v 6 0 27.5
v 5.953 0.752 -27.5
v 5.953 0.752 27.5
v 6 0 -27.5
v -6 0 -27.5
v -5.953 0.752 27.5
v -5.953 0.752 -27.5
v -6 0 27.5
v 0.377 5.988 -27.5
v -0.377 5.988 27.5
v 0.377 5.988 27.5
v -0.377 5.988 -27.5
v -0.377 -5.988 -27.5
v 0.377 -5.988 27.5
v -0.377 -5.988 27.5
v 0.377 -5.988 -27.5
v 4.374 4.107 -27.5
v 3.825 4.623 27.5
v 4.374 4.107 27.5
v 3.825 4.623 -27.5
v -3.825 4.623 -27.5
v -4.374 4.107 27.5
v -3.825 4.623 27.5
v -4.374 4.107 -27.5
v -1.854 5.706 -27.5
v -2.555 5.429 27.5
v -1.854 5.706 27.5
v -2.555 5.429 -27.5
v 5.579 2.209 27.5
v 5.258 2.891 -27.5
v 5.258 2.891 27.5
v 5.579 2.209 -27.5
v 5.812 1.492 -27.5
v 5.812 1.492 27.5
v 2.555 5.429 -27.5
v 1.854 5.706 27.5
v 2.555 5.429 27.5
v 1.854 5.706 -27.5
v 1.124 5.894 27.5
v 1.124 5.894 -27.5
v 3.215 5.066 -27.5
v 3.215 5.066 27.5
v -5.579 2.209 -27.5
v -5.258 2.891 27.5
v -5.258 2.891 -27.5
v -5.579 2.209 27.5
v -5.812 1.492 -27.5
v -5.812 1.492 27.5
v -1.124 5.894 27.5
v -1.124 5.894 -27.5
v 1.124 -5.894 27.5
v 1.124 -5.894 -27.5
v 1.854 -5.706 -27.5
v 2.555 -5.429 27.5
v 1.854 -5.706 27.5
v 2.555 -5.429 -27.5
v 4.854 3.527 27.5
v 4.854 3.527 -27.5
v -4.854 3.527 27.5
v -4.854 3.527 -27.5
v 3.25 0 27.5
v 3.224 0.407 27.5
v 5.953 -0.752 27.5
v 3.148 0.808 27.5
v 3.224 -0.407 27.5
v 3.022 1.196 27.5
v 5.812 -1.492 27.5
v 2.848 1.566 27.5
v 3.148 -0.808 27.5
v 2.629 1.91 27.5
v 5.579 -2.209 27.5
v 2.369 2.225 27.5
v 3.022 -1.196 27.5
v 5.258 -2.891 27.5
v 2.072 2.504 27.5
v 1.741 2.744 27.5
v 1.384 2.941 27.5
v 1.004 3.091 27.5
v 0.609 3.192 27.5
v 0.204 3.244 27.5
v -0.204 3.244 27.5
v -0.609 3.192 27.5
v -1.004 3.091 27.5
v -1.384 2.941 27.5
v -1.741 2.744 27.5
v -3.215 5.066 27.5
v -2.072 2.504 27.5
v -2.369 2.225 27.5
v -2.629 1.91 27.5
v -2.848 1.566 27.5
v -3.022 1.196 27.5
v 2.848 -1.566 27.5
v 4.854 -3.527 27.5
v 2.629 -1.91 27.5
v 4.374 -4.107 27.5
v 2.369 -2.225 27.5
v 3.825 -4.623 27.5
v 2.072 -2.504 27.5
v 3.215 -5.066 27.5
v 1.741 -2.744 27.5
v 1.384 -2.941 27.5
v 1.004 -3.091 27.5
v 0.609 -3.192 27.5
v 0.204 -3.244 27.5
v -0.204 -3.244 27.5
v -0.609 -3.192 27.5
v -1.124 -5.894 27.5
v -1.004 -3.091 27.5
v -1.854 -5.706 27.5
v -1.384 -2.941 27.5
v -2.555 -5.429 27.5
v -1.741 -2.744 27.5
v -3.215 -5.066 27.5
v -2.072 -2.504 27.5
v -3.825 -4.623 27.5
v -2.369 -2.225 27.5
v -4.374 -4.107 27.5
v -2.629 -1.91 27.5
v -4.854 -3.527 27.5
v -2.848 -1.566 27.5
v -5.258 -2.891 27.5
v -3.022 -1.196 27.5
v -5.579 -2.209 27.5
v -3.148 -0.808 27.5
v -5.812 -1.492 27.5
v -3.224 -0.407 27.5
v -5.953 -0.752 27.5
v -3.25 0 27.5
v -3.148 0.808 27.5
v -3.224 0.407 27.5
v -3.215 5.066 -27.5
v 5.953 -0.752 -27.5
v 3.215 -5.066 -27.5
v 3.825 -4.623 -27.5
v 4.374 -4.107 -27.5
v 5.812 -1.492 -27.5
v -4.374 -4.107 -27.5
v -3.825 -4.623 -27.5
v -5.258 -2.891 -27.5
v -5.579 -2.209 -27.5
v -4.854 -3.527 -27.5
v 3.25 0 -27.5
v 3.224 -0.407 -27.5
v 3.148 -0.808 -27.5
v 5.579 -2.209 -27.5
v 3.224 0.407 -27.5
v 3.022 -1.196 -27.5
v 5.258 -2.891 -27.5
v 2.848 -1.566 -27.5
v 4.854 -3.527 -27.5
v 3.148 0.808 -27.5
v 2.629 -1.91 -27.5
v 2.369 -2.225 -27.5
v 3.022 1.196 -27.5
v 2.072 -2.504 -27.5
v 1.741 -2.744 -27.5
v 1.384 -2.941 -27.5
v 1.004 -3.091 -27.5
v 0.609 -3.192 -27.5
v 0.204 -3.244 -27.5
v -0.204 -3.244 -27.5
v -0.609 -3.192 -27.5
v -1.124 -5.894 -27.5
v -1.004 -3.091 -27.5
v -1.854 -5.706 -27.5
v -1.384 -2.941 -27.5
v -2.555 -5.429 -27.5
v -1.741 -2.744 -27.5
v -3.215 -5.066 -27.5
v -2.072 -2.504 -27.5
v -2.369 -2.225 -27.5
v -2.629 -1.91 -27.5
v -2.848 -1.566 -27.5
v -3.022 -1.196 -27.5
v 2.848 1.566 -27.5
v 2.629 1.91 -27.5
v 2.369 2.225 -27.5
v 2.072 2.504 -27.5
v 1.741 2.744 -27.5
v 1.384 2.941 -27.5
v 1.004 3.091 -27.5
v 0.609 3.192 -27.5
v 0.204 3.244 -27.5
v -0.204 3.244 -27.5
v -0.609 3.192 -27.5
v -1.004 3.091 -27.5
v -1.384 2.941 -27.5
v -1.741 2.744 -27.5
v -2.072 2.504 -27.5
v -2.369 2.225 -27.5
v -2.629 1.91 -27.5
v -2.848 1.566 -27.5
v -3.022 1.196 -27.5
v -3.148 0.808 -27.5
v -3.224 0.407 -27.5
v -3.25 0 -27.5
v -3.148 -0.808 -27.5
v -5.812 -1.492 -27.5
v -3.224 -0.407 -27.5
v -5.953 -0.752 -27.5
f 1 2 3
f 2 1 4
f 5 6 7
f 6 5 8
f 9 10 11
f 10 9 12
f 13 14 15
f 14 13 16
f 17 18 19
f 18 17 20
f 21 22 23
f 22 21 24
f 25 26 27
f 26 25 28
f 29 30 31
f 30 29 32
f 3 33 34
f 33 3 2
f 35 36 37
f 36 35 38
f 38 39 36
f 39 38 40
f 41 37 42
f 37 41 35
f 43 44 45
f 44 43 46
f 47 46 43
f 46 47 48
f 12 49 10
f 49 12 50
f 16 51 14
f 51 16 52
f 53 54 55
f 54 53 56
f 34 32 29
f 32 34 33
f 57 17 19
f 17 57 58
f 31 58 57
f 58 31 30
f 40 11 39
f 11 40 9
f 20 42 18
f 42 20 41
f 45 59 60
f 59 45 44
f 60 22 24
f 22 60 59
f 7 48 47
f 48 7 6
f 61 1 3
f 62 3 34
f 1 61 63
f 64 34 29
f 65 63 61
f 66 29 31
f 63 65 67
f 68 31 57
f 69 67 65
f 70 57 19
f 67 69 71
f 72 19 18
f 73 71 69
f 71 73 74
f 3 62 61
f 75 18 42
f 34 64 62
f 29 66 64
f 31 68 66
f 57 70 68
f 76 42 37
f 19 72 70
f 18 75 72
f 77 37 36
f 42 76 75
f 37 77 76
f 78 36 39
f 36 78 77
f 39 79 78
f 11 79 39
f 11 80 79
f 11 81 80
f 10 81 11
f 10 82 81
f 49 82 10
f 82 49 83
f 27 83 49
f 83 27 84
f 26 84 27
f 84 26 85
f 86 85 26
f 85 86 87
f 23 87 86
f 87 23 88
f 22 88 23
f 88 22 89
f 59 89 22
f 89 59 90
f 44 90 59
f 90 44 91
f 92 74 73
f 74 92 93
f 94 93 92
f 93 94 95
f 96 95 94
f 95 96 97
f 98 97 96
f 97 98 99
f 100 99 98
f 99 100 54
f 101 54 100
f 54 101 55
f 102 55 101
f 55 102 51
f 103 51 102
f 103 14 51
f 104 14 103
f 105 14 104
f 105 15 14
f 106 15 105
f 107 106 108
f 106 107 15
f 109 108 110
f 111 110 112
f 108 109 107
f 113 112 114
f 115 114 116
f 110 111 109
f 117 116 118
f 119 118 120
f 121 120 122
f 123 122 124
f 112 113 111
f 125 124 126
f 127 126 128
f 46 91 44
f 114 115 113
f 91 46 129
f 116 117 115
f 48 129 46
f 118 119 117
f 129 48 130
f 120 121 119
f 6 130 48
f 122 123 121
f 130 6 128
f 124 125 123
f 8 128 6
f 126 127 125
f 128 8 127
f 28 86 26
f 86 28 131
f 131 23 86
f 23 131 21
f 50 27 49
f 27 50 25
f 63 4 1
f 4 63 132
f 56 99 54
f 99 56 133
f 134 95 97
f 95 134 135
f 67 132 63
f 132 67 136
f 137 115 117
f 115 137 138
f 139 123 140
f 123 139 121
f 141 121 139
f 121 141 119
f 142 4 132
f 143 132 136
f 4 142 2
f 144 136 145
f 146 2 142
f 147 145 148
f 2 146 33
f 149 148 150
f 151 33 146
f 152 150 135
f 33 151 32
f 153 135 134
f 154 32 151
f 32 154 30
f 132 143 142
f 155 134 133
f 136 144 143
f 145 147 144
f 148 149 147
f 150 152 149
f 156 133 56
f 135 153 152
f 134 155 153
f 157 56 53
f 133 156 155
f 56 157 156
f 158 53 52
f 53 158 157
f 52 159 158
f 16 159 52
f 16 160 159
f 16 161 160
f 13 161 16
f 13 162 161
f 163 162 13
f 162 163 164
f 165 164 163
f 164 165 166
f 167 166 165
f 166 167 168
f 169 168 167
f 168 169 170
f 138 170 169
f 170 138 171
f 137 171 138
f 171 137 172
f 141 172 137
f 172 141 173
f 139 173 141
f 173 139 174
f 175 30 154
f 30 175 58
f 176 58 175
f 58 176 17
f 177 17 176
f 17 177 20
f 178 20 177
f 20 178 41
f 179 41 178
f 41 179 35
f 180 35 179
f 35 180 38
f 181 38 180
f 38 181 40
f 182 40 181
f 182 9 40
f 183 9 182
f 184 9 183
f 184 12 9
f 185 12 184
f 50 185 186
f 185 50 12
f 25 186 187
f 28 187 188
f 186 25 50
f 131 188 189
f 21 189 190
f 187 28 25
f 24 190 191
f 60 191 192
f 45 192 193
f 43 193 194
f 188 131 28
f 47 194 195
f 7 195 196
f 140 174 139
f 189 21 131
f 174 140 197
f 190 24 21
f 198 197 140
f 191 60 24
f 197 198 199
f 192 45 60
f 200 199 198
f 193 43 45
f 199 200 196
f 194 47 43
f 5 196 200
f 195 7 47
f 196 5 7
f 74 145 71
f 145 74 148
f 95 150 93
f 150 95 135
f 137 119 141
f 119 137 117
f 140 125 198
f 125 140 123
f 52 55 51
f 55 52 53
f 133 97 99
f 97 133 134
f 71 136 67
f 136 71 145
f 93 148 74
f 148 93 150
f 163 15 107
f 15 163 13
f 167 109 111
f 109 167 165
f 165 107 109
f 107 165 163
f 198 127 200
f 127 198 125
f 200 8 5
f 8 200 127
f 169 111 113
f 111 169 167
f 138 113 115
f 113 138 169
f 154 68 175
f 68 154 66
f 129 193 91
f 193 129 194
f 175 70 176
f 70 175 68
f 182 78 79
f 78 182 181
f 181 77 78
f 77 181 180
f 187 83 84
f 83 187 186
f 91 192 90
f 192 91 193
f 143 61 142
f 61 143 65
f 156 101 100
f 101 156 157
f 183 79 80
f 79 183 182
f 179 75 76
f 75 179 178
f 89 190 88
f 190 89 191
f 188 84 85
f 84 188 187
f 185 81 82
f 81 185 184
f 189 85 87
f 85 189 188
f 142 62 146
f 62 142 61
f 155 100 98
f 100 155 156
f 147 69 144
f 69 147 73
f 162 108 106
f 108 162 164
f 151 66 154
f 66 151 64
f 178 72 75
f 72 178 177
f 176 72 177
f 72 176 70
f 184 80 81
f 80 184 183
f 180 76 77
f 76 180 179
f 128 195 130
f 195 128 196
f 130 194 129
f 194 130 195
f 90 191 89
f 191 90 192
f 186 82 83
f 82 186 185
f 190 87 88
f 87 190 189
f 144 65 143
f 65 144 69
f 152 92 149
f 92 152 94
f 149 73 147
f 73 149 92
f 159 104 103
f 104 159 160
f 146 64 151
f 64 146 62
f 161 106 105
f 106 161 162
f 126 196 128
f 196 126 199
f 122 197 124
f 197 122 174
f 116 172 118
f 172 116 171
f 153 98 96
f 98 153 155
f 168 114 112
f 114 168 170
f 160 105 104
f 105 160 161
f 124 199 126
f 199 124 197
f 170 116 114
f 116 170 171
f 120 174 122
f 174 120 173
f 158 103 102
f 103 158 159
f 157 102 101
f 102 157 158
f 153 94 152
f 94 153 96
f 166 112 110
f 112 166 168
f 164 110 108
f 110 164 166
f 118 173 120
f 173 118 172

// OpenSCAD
$fn = 50;


difference() {
	union() {
		translate(v = [0, 0, -27.5000000000]) {
			cylinder(h = 55, r = 6.0000000000);
		}
	}
	union() {
		translate(v = [0, 0, -100.0000000000]) {
			cylinder(h = 200, r = 3.2500000000);
		}
	}
}
